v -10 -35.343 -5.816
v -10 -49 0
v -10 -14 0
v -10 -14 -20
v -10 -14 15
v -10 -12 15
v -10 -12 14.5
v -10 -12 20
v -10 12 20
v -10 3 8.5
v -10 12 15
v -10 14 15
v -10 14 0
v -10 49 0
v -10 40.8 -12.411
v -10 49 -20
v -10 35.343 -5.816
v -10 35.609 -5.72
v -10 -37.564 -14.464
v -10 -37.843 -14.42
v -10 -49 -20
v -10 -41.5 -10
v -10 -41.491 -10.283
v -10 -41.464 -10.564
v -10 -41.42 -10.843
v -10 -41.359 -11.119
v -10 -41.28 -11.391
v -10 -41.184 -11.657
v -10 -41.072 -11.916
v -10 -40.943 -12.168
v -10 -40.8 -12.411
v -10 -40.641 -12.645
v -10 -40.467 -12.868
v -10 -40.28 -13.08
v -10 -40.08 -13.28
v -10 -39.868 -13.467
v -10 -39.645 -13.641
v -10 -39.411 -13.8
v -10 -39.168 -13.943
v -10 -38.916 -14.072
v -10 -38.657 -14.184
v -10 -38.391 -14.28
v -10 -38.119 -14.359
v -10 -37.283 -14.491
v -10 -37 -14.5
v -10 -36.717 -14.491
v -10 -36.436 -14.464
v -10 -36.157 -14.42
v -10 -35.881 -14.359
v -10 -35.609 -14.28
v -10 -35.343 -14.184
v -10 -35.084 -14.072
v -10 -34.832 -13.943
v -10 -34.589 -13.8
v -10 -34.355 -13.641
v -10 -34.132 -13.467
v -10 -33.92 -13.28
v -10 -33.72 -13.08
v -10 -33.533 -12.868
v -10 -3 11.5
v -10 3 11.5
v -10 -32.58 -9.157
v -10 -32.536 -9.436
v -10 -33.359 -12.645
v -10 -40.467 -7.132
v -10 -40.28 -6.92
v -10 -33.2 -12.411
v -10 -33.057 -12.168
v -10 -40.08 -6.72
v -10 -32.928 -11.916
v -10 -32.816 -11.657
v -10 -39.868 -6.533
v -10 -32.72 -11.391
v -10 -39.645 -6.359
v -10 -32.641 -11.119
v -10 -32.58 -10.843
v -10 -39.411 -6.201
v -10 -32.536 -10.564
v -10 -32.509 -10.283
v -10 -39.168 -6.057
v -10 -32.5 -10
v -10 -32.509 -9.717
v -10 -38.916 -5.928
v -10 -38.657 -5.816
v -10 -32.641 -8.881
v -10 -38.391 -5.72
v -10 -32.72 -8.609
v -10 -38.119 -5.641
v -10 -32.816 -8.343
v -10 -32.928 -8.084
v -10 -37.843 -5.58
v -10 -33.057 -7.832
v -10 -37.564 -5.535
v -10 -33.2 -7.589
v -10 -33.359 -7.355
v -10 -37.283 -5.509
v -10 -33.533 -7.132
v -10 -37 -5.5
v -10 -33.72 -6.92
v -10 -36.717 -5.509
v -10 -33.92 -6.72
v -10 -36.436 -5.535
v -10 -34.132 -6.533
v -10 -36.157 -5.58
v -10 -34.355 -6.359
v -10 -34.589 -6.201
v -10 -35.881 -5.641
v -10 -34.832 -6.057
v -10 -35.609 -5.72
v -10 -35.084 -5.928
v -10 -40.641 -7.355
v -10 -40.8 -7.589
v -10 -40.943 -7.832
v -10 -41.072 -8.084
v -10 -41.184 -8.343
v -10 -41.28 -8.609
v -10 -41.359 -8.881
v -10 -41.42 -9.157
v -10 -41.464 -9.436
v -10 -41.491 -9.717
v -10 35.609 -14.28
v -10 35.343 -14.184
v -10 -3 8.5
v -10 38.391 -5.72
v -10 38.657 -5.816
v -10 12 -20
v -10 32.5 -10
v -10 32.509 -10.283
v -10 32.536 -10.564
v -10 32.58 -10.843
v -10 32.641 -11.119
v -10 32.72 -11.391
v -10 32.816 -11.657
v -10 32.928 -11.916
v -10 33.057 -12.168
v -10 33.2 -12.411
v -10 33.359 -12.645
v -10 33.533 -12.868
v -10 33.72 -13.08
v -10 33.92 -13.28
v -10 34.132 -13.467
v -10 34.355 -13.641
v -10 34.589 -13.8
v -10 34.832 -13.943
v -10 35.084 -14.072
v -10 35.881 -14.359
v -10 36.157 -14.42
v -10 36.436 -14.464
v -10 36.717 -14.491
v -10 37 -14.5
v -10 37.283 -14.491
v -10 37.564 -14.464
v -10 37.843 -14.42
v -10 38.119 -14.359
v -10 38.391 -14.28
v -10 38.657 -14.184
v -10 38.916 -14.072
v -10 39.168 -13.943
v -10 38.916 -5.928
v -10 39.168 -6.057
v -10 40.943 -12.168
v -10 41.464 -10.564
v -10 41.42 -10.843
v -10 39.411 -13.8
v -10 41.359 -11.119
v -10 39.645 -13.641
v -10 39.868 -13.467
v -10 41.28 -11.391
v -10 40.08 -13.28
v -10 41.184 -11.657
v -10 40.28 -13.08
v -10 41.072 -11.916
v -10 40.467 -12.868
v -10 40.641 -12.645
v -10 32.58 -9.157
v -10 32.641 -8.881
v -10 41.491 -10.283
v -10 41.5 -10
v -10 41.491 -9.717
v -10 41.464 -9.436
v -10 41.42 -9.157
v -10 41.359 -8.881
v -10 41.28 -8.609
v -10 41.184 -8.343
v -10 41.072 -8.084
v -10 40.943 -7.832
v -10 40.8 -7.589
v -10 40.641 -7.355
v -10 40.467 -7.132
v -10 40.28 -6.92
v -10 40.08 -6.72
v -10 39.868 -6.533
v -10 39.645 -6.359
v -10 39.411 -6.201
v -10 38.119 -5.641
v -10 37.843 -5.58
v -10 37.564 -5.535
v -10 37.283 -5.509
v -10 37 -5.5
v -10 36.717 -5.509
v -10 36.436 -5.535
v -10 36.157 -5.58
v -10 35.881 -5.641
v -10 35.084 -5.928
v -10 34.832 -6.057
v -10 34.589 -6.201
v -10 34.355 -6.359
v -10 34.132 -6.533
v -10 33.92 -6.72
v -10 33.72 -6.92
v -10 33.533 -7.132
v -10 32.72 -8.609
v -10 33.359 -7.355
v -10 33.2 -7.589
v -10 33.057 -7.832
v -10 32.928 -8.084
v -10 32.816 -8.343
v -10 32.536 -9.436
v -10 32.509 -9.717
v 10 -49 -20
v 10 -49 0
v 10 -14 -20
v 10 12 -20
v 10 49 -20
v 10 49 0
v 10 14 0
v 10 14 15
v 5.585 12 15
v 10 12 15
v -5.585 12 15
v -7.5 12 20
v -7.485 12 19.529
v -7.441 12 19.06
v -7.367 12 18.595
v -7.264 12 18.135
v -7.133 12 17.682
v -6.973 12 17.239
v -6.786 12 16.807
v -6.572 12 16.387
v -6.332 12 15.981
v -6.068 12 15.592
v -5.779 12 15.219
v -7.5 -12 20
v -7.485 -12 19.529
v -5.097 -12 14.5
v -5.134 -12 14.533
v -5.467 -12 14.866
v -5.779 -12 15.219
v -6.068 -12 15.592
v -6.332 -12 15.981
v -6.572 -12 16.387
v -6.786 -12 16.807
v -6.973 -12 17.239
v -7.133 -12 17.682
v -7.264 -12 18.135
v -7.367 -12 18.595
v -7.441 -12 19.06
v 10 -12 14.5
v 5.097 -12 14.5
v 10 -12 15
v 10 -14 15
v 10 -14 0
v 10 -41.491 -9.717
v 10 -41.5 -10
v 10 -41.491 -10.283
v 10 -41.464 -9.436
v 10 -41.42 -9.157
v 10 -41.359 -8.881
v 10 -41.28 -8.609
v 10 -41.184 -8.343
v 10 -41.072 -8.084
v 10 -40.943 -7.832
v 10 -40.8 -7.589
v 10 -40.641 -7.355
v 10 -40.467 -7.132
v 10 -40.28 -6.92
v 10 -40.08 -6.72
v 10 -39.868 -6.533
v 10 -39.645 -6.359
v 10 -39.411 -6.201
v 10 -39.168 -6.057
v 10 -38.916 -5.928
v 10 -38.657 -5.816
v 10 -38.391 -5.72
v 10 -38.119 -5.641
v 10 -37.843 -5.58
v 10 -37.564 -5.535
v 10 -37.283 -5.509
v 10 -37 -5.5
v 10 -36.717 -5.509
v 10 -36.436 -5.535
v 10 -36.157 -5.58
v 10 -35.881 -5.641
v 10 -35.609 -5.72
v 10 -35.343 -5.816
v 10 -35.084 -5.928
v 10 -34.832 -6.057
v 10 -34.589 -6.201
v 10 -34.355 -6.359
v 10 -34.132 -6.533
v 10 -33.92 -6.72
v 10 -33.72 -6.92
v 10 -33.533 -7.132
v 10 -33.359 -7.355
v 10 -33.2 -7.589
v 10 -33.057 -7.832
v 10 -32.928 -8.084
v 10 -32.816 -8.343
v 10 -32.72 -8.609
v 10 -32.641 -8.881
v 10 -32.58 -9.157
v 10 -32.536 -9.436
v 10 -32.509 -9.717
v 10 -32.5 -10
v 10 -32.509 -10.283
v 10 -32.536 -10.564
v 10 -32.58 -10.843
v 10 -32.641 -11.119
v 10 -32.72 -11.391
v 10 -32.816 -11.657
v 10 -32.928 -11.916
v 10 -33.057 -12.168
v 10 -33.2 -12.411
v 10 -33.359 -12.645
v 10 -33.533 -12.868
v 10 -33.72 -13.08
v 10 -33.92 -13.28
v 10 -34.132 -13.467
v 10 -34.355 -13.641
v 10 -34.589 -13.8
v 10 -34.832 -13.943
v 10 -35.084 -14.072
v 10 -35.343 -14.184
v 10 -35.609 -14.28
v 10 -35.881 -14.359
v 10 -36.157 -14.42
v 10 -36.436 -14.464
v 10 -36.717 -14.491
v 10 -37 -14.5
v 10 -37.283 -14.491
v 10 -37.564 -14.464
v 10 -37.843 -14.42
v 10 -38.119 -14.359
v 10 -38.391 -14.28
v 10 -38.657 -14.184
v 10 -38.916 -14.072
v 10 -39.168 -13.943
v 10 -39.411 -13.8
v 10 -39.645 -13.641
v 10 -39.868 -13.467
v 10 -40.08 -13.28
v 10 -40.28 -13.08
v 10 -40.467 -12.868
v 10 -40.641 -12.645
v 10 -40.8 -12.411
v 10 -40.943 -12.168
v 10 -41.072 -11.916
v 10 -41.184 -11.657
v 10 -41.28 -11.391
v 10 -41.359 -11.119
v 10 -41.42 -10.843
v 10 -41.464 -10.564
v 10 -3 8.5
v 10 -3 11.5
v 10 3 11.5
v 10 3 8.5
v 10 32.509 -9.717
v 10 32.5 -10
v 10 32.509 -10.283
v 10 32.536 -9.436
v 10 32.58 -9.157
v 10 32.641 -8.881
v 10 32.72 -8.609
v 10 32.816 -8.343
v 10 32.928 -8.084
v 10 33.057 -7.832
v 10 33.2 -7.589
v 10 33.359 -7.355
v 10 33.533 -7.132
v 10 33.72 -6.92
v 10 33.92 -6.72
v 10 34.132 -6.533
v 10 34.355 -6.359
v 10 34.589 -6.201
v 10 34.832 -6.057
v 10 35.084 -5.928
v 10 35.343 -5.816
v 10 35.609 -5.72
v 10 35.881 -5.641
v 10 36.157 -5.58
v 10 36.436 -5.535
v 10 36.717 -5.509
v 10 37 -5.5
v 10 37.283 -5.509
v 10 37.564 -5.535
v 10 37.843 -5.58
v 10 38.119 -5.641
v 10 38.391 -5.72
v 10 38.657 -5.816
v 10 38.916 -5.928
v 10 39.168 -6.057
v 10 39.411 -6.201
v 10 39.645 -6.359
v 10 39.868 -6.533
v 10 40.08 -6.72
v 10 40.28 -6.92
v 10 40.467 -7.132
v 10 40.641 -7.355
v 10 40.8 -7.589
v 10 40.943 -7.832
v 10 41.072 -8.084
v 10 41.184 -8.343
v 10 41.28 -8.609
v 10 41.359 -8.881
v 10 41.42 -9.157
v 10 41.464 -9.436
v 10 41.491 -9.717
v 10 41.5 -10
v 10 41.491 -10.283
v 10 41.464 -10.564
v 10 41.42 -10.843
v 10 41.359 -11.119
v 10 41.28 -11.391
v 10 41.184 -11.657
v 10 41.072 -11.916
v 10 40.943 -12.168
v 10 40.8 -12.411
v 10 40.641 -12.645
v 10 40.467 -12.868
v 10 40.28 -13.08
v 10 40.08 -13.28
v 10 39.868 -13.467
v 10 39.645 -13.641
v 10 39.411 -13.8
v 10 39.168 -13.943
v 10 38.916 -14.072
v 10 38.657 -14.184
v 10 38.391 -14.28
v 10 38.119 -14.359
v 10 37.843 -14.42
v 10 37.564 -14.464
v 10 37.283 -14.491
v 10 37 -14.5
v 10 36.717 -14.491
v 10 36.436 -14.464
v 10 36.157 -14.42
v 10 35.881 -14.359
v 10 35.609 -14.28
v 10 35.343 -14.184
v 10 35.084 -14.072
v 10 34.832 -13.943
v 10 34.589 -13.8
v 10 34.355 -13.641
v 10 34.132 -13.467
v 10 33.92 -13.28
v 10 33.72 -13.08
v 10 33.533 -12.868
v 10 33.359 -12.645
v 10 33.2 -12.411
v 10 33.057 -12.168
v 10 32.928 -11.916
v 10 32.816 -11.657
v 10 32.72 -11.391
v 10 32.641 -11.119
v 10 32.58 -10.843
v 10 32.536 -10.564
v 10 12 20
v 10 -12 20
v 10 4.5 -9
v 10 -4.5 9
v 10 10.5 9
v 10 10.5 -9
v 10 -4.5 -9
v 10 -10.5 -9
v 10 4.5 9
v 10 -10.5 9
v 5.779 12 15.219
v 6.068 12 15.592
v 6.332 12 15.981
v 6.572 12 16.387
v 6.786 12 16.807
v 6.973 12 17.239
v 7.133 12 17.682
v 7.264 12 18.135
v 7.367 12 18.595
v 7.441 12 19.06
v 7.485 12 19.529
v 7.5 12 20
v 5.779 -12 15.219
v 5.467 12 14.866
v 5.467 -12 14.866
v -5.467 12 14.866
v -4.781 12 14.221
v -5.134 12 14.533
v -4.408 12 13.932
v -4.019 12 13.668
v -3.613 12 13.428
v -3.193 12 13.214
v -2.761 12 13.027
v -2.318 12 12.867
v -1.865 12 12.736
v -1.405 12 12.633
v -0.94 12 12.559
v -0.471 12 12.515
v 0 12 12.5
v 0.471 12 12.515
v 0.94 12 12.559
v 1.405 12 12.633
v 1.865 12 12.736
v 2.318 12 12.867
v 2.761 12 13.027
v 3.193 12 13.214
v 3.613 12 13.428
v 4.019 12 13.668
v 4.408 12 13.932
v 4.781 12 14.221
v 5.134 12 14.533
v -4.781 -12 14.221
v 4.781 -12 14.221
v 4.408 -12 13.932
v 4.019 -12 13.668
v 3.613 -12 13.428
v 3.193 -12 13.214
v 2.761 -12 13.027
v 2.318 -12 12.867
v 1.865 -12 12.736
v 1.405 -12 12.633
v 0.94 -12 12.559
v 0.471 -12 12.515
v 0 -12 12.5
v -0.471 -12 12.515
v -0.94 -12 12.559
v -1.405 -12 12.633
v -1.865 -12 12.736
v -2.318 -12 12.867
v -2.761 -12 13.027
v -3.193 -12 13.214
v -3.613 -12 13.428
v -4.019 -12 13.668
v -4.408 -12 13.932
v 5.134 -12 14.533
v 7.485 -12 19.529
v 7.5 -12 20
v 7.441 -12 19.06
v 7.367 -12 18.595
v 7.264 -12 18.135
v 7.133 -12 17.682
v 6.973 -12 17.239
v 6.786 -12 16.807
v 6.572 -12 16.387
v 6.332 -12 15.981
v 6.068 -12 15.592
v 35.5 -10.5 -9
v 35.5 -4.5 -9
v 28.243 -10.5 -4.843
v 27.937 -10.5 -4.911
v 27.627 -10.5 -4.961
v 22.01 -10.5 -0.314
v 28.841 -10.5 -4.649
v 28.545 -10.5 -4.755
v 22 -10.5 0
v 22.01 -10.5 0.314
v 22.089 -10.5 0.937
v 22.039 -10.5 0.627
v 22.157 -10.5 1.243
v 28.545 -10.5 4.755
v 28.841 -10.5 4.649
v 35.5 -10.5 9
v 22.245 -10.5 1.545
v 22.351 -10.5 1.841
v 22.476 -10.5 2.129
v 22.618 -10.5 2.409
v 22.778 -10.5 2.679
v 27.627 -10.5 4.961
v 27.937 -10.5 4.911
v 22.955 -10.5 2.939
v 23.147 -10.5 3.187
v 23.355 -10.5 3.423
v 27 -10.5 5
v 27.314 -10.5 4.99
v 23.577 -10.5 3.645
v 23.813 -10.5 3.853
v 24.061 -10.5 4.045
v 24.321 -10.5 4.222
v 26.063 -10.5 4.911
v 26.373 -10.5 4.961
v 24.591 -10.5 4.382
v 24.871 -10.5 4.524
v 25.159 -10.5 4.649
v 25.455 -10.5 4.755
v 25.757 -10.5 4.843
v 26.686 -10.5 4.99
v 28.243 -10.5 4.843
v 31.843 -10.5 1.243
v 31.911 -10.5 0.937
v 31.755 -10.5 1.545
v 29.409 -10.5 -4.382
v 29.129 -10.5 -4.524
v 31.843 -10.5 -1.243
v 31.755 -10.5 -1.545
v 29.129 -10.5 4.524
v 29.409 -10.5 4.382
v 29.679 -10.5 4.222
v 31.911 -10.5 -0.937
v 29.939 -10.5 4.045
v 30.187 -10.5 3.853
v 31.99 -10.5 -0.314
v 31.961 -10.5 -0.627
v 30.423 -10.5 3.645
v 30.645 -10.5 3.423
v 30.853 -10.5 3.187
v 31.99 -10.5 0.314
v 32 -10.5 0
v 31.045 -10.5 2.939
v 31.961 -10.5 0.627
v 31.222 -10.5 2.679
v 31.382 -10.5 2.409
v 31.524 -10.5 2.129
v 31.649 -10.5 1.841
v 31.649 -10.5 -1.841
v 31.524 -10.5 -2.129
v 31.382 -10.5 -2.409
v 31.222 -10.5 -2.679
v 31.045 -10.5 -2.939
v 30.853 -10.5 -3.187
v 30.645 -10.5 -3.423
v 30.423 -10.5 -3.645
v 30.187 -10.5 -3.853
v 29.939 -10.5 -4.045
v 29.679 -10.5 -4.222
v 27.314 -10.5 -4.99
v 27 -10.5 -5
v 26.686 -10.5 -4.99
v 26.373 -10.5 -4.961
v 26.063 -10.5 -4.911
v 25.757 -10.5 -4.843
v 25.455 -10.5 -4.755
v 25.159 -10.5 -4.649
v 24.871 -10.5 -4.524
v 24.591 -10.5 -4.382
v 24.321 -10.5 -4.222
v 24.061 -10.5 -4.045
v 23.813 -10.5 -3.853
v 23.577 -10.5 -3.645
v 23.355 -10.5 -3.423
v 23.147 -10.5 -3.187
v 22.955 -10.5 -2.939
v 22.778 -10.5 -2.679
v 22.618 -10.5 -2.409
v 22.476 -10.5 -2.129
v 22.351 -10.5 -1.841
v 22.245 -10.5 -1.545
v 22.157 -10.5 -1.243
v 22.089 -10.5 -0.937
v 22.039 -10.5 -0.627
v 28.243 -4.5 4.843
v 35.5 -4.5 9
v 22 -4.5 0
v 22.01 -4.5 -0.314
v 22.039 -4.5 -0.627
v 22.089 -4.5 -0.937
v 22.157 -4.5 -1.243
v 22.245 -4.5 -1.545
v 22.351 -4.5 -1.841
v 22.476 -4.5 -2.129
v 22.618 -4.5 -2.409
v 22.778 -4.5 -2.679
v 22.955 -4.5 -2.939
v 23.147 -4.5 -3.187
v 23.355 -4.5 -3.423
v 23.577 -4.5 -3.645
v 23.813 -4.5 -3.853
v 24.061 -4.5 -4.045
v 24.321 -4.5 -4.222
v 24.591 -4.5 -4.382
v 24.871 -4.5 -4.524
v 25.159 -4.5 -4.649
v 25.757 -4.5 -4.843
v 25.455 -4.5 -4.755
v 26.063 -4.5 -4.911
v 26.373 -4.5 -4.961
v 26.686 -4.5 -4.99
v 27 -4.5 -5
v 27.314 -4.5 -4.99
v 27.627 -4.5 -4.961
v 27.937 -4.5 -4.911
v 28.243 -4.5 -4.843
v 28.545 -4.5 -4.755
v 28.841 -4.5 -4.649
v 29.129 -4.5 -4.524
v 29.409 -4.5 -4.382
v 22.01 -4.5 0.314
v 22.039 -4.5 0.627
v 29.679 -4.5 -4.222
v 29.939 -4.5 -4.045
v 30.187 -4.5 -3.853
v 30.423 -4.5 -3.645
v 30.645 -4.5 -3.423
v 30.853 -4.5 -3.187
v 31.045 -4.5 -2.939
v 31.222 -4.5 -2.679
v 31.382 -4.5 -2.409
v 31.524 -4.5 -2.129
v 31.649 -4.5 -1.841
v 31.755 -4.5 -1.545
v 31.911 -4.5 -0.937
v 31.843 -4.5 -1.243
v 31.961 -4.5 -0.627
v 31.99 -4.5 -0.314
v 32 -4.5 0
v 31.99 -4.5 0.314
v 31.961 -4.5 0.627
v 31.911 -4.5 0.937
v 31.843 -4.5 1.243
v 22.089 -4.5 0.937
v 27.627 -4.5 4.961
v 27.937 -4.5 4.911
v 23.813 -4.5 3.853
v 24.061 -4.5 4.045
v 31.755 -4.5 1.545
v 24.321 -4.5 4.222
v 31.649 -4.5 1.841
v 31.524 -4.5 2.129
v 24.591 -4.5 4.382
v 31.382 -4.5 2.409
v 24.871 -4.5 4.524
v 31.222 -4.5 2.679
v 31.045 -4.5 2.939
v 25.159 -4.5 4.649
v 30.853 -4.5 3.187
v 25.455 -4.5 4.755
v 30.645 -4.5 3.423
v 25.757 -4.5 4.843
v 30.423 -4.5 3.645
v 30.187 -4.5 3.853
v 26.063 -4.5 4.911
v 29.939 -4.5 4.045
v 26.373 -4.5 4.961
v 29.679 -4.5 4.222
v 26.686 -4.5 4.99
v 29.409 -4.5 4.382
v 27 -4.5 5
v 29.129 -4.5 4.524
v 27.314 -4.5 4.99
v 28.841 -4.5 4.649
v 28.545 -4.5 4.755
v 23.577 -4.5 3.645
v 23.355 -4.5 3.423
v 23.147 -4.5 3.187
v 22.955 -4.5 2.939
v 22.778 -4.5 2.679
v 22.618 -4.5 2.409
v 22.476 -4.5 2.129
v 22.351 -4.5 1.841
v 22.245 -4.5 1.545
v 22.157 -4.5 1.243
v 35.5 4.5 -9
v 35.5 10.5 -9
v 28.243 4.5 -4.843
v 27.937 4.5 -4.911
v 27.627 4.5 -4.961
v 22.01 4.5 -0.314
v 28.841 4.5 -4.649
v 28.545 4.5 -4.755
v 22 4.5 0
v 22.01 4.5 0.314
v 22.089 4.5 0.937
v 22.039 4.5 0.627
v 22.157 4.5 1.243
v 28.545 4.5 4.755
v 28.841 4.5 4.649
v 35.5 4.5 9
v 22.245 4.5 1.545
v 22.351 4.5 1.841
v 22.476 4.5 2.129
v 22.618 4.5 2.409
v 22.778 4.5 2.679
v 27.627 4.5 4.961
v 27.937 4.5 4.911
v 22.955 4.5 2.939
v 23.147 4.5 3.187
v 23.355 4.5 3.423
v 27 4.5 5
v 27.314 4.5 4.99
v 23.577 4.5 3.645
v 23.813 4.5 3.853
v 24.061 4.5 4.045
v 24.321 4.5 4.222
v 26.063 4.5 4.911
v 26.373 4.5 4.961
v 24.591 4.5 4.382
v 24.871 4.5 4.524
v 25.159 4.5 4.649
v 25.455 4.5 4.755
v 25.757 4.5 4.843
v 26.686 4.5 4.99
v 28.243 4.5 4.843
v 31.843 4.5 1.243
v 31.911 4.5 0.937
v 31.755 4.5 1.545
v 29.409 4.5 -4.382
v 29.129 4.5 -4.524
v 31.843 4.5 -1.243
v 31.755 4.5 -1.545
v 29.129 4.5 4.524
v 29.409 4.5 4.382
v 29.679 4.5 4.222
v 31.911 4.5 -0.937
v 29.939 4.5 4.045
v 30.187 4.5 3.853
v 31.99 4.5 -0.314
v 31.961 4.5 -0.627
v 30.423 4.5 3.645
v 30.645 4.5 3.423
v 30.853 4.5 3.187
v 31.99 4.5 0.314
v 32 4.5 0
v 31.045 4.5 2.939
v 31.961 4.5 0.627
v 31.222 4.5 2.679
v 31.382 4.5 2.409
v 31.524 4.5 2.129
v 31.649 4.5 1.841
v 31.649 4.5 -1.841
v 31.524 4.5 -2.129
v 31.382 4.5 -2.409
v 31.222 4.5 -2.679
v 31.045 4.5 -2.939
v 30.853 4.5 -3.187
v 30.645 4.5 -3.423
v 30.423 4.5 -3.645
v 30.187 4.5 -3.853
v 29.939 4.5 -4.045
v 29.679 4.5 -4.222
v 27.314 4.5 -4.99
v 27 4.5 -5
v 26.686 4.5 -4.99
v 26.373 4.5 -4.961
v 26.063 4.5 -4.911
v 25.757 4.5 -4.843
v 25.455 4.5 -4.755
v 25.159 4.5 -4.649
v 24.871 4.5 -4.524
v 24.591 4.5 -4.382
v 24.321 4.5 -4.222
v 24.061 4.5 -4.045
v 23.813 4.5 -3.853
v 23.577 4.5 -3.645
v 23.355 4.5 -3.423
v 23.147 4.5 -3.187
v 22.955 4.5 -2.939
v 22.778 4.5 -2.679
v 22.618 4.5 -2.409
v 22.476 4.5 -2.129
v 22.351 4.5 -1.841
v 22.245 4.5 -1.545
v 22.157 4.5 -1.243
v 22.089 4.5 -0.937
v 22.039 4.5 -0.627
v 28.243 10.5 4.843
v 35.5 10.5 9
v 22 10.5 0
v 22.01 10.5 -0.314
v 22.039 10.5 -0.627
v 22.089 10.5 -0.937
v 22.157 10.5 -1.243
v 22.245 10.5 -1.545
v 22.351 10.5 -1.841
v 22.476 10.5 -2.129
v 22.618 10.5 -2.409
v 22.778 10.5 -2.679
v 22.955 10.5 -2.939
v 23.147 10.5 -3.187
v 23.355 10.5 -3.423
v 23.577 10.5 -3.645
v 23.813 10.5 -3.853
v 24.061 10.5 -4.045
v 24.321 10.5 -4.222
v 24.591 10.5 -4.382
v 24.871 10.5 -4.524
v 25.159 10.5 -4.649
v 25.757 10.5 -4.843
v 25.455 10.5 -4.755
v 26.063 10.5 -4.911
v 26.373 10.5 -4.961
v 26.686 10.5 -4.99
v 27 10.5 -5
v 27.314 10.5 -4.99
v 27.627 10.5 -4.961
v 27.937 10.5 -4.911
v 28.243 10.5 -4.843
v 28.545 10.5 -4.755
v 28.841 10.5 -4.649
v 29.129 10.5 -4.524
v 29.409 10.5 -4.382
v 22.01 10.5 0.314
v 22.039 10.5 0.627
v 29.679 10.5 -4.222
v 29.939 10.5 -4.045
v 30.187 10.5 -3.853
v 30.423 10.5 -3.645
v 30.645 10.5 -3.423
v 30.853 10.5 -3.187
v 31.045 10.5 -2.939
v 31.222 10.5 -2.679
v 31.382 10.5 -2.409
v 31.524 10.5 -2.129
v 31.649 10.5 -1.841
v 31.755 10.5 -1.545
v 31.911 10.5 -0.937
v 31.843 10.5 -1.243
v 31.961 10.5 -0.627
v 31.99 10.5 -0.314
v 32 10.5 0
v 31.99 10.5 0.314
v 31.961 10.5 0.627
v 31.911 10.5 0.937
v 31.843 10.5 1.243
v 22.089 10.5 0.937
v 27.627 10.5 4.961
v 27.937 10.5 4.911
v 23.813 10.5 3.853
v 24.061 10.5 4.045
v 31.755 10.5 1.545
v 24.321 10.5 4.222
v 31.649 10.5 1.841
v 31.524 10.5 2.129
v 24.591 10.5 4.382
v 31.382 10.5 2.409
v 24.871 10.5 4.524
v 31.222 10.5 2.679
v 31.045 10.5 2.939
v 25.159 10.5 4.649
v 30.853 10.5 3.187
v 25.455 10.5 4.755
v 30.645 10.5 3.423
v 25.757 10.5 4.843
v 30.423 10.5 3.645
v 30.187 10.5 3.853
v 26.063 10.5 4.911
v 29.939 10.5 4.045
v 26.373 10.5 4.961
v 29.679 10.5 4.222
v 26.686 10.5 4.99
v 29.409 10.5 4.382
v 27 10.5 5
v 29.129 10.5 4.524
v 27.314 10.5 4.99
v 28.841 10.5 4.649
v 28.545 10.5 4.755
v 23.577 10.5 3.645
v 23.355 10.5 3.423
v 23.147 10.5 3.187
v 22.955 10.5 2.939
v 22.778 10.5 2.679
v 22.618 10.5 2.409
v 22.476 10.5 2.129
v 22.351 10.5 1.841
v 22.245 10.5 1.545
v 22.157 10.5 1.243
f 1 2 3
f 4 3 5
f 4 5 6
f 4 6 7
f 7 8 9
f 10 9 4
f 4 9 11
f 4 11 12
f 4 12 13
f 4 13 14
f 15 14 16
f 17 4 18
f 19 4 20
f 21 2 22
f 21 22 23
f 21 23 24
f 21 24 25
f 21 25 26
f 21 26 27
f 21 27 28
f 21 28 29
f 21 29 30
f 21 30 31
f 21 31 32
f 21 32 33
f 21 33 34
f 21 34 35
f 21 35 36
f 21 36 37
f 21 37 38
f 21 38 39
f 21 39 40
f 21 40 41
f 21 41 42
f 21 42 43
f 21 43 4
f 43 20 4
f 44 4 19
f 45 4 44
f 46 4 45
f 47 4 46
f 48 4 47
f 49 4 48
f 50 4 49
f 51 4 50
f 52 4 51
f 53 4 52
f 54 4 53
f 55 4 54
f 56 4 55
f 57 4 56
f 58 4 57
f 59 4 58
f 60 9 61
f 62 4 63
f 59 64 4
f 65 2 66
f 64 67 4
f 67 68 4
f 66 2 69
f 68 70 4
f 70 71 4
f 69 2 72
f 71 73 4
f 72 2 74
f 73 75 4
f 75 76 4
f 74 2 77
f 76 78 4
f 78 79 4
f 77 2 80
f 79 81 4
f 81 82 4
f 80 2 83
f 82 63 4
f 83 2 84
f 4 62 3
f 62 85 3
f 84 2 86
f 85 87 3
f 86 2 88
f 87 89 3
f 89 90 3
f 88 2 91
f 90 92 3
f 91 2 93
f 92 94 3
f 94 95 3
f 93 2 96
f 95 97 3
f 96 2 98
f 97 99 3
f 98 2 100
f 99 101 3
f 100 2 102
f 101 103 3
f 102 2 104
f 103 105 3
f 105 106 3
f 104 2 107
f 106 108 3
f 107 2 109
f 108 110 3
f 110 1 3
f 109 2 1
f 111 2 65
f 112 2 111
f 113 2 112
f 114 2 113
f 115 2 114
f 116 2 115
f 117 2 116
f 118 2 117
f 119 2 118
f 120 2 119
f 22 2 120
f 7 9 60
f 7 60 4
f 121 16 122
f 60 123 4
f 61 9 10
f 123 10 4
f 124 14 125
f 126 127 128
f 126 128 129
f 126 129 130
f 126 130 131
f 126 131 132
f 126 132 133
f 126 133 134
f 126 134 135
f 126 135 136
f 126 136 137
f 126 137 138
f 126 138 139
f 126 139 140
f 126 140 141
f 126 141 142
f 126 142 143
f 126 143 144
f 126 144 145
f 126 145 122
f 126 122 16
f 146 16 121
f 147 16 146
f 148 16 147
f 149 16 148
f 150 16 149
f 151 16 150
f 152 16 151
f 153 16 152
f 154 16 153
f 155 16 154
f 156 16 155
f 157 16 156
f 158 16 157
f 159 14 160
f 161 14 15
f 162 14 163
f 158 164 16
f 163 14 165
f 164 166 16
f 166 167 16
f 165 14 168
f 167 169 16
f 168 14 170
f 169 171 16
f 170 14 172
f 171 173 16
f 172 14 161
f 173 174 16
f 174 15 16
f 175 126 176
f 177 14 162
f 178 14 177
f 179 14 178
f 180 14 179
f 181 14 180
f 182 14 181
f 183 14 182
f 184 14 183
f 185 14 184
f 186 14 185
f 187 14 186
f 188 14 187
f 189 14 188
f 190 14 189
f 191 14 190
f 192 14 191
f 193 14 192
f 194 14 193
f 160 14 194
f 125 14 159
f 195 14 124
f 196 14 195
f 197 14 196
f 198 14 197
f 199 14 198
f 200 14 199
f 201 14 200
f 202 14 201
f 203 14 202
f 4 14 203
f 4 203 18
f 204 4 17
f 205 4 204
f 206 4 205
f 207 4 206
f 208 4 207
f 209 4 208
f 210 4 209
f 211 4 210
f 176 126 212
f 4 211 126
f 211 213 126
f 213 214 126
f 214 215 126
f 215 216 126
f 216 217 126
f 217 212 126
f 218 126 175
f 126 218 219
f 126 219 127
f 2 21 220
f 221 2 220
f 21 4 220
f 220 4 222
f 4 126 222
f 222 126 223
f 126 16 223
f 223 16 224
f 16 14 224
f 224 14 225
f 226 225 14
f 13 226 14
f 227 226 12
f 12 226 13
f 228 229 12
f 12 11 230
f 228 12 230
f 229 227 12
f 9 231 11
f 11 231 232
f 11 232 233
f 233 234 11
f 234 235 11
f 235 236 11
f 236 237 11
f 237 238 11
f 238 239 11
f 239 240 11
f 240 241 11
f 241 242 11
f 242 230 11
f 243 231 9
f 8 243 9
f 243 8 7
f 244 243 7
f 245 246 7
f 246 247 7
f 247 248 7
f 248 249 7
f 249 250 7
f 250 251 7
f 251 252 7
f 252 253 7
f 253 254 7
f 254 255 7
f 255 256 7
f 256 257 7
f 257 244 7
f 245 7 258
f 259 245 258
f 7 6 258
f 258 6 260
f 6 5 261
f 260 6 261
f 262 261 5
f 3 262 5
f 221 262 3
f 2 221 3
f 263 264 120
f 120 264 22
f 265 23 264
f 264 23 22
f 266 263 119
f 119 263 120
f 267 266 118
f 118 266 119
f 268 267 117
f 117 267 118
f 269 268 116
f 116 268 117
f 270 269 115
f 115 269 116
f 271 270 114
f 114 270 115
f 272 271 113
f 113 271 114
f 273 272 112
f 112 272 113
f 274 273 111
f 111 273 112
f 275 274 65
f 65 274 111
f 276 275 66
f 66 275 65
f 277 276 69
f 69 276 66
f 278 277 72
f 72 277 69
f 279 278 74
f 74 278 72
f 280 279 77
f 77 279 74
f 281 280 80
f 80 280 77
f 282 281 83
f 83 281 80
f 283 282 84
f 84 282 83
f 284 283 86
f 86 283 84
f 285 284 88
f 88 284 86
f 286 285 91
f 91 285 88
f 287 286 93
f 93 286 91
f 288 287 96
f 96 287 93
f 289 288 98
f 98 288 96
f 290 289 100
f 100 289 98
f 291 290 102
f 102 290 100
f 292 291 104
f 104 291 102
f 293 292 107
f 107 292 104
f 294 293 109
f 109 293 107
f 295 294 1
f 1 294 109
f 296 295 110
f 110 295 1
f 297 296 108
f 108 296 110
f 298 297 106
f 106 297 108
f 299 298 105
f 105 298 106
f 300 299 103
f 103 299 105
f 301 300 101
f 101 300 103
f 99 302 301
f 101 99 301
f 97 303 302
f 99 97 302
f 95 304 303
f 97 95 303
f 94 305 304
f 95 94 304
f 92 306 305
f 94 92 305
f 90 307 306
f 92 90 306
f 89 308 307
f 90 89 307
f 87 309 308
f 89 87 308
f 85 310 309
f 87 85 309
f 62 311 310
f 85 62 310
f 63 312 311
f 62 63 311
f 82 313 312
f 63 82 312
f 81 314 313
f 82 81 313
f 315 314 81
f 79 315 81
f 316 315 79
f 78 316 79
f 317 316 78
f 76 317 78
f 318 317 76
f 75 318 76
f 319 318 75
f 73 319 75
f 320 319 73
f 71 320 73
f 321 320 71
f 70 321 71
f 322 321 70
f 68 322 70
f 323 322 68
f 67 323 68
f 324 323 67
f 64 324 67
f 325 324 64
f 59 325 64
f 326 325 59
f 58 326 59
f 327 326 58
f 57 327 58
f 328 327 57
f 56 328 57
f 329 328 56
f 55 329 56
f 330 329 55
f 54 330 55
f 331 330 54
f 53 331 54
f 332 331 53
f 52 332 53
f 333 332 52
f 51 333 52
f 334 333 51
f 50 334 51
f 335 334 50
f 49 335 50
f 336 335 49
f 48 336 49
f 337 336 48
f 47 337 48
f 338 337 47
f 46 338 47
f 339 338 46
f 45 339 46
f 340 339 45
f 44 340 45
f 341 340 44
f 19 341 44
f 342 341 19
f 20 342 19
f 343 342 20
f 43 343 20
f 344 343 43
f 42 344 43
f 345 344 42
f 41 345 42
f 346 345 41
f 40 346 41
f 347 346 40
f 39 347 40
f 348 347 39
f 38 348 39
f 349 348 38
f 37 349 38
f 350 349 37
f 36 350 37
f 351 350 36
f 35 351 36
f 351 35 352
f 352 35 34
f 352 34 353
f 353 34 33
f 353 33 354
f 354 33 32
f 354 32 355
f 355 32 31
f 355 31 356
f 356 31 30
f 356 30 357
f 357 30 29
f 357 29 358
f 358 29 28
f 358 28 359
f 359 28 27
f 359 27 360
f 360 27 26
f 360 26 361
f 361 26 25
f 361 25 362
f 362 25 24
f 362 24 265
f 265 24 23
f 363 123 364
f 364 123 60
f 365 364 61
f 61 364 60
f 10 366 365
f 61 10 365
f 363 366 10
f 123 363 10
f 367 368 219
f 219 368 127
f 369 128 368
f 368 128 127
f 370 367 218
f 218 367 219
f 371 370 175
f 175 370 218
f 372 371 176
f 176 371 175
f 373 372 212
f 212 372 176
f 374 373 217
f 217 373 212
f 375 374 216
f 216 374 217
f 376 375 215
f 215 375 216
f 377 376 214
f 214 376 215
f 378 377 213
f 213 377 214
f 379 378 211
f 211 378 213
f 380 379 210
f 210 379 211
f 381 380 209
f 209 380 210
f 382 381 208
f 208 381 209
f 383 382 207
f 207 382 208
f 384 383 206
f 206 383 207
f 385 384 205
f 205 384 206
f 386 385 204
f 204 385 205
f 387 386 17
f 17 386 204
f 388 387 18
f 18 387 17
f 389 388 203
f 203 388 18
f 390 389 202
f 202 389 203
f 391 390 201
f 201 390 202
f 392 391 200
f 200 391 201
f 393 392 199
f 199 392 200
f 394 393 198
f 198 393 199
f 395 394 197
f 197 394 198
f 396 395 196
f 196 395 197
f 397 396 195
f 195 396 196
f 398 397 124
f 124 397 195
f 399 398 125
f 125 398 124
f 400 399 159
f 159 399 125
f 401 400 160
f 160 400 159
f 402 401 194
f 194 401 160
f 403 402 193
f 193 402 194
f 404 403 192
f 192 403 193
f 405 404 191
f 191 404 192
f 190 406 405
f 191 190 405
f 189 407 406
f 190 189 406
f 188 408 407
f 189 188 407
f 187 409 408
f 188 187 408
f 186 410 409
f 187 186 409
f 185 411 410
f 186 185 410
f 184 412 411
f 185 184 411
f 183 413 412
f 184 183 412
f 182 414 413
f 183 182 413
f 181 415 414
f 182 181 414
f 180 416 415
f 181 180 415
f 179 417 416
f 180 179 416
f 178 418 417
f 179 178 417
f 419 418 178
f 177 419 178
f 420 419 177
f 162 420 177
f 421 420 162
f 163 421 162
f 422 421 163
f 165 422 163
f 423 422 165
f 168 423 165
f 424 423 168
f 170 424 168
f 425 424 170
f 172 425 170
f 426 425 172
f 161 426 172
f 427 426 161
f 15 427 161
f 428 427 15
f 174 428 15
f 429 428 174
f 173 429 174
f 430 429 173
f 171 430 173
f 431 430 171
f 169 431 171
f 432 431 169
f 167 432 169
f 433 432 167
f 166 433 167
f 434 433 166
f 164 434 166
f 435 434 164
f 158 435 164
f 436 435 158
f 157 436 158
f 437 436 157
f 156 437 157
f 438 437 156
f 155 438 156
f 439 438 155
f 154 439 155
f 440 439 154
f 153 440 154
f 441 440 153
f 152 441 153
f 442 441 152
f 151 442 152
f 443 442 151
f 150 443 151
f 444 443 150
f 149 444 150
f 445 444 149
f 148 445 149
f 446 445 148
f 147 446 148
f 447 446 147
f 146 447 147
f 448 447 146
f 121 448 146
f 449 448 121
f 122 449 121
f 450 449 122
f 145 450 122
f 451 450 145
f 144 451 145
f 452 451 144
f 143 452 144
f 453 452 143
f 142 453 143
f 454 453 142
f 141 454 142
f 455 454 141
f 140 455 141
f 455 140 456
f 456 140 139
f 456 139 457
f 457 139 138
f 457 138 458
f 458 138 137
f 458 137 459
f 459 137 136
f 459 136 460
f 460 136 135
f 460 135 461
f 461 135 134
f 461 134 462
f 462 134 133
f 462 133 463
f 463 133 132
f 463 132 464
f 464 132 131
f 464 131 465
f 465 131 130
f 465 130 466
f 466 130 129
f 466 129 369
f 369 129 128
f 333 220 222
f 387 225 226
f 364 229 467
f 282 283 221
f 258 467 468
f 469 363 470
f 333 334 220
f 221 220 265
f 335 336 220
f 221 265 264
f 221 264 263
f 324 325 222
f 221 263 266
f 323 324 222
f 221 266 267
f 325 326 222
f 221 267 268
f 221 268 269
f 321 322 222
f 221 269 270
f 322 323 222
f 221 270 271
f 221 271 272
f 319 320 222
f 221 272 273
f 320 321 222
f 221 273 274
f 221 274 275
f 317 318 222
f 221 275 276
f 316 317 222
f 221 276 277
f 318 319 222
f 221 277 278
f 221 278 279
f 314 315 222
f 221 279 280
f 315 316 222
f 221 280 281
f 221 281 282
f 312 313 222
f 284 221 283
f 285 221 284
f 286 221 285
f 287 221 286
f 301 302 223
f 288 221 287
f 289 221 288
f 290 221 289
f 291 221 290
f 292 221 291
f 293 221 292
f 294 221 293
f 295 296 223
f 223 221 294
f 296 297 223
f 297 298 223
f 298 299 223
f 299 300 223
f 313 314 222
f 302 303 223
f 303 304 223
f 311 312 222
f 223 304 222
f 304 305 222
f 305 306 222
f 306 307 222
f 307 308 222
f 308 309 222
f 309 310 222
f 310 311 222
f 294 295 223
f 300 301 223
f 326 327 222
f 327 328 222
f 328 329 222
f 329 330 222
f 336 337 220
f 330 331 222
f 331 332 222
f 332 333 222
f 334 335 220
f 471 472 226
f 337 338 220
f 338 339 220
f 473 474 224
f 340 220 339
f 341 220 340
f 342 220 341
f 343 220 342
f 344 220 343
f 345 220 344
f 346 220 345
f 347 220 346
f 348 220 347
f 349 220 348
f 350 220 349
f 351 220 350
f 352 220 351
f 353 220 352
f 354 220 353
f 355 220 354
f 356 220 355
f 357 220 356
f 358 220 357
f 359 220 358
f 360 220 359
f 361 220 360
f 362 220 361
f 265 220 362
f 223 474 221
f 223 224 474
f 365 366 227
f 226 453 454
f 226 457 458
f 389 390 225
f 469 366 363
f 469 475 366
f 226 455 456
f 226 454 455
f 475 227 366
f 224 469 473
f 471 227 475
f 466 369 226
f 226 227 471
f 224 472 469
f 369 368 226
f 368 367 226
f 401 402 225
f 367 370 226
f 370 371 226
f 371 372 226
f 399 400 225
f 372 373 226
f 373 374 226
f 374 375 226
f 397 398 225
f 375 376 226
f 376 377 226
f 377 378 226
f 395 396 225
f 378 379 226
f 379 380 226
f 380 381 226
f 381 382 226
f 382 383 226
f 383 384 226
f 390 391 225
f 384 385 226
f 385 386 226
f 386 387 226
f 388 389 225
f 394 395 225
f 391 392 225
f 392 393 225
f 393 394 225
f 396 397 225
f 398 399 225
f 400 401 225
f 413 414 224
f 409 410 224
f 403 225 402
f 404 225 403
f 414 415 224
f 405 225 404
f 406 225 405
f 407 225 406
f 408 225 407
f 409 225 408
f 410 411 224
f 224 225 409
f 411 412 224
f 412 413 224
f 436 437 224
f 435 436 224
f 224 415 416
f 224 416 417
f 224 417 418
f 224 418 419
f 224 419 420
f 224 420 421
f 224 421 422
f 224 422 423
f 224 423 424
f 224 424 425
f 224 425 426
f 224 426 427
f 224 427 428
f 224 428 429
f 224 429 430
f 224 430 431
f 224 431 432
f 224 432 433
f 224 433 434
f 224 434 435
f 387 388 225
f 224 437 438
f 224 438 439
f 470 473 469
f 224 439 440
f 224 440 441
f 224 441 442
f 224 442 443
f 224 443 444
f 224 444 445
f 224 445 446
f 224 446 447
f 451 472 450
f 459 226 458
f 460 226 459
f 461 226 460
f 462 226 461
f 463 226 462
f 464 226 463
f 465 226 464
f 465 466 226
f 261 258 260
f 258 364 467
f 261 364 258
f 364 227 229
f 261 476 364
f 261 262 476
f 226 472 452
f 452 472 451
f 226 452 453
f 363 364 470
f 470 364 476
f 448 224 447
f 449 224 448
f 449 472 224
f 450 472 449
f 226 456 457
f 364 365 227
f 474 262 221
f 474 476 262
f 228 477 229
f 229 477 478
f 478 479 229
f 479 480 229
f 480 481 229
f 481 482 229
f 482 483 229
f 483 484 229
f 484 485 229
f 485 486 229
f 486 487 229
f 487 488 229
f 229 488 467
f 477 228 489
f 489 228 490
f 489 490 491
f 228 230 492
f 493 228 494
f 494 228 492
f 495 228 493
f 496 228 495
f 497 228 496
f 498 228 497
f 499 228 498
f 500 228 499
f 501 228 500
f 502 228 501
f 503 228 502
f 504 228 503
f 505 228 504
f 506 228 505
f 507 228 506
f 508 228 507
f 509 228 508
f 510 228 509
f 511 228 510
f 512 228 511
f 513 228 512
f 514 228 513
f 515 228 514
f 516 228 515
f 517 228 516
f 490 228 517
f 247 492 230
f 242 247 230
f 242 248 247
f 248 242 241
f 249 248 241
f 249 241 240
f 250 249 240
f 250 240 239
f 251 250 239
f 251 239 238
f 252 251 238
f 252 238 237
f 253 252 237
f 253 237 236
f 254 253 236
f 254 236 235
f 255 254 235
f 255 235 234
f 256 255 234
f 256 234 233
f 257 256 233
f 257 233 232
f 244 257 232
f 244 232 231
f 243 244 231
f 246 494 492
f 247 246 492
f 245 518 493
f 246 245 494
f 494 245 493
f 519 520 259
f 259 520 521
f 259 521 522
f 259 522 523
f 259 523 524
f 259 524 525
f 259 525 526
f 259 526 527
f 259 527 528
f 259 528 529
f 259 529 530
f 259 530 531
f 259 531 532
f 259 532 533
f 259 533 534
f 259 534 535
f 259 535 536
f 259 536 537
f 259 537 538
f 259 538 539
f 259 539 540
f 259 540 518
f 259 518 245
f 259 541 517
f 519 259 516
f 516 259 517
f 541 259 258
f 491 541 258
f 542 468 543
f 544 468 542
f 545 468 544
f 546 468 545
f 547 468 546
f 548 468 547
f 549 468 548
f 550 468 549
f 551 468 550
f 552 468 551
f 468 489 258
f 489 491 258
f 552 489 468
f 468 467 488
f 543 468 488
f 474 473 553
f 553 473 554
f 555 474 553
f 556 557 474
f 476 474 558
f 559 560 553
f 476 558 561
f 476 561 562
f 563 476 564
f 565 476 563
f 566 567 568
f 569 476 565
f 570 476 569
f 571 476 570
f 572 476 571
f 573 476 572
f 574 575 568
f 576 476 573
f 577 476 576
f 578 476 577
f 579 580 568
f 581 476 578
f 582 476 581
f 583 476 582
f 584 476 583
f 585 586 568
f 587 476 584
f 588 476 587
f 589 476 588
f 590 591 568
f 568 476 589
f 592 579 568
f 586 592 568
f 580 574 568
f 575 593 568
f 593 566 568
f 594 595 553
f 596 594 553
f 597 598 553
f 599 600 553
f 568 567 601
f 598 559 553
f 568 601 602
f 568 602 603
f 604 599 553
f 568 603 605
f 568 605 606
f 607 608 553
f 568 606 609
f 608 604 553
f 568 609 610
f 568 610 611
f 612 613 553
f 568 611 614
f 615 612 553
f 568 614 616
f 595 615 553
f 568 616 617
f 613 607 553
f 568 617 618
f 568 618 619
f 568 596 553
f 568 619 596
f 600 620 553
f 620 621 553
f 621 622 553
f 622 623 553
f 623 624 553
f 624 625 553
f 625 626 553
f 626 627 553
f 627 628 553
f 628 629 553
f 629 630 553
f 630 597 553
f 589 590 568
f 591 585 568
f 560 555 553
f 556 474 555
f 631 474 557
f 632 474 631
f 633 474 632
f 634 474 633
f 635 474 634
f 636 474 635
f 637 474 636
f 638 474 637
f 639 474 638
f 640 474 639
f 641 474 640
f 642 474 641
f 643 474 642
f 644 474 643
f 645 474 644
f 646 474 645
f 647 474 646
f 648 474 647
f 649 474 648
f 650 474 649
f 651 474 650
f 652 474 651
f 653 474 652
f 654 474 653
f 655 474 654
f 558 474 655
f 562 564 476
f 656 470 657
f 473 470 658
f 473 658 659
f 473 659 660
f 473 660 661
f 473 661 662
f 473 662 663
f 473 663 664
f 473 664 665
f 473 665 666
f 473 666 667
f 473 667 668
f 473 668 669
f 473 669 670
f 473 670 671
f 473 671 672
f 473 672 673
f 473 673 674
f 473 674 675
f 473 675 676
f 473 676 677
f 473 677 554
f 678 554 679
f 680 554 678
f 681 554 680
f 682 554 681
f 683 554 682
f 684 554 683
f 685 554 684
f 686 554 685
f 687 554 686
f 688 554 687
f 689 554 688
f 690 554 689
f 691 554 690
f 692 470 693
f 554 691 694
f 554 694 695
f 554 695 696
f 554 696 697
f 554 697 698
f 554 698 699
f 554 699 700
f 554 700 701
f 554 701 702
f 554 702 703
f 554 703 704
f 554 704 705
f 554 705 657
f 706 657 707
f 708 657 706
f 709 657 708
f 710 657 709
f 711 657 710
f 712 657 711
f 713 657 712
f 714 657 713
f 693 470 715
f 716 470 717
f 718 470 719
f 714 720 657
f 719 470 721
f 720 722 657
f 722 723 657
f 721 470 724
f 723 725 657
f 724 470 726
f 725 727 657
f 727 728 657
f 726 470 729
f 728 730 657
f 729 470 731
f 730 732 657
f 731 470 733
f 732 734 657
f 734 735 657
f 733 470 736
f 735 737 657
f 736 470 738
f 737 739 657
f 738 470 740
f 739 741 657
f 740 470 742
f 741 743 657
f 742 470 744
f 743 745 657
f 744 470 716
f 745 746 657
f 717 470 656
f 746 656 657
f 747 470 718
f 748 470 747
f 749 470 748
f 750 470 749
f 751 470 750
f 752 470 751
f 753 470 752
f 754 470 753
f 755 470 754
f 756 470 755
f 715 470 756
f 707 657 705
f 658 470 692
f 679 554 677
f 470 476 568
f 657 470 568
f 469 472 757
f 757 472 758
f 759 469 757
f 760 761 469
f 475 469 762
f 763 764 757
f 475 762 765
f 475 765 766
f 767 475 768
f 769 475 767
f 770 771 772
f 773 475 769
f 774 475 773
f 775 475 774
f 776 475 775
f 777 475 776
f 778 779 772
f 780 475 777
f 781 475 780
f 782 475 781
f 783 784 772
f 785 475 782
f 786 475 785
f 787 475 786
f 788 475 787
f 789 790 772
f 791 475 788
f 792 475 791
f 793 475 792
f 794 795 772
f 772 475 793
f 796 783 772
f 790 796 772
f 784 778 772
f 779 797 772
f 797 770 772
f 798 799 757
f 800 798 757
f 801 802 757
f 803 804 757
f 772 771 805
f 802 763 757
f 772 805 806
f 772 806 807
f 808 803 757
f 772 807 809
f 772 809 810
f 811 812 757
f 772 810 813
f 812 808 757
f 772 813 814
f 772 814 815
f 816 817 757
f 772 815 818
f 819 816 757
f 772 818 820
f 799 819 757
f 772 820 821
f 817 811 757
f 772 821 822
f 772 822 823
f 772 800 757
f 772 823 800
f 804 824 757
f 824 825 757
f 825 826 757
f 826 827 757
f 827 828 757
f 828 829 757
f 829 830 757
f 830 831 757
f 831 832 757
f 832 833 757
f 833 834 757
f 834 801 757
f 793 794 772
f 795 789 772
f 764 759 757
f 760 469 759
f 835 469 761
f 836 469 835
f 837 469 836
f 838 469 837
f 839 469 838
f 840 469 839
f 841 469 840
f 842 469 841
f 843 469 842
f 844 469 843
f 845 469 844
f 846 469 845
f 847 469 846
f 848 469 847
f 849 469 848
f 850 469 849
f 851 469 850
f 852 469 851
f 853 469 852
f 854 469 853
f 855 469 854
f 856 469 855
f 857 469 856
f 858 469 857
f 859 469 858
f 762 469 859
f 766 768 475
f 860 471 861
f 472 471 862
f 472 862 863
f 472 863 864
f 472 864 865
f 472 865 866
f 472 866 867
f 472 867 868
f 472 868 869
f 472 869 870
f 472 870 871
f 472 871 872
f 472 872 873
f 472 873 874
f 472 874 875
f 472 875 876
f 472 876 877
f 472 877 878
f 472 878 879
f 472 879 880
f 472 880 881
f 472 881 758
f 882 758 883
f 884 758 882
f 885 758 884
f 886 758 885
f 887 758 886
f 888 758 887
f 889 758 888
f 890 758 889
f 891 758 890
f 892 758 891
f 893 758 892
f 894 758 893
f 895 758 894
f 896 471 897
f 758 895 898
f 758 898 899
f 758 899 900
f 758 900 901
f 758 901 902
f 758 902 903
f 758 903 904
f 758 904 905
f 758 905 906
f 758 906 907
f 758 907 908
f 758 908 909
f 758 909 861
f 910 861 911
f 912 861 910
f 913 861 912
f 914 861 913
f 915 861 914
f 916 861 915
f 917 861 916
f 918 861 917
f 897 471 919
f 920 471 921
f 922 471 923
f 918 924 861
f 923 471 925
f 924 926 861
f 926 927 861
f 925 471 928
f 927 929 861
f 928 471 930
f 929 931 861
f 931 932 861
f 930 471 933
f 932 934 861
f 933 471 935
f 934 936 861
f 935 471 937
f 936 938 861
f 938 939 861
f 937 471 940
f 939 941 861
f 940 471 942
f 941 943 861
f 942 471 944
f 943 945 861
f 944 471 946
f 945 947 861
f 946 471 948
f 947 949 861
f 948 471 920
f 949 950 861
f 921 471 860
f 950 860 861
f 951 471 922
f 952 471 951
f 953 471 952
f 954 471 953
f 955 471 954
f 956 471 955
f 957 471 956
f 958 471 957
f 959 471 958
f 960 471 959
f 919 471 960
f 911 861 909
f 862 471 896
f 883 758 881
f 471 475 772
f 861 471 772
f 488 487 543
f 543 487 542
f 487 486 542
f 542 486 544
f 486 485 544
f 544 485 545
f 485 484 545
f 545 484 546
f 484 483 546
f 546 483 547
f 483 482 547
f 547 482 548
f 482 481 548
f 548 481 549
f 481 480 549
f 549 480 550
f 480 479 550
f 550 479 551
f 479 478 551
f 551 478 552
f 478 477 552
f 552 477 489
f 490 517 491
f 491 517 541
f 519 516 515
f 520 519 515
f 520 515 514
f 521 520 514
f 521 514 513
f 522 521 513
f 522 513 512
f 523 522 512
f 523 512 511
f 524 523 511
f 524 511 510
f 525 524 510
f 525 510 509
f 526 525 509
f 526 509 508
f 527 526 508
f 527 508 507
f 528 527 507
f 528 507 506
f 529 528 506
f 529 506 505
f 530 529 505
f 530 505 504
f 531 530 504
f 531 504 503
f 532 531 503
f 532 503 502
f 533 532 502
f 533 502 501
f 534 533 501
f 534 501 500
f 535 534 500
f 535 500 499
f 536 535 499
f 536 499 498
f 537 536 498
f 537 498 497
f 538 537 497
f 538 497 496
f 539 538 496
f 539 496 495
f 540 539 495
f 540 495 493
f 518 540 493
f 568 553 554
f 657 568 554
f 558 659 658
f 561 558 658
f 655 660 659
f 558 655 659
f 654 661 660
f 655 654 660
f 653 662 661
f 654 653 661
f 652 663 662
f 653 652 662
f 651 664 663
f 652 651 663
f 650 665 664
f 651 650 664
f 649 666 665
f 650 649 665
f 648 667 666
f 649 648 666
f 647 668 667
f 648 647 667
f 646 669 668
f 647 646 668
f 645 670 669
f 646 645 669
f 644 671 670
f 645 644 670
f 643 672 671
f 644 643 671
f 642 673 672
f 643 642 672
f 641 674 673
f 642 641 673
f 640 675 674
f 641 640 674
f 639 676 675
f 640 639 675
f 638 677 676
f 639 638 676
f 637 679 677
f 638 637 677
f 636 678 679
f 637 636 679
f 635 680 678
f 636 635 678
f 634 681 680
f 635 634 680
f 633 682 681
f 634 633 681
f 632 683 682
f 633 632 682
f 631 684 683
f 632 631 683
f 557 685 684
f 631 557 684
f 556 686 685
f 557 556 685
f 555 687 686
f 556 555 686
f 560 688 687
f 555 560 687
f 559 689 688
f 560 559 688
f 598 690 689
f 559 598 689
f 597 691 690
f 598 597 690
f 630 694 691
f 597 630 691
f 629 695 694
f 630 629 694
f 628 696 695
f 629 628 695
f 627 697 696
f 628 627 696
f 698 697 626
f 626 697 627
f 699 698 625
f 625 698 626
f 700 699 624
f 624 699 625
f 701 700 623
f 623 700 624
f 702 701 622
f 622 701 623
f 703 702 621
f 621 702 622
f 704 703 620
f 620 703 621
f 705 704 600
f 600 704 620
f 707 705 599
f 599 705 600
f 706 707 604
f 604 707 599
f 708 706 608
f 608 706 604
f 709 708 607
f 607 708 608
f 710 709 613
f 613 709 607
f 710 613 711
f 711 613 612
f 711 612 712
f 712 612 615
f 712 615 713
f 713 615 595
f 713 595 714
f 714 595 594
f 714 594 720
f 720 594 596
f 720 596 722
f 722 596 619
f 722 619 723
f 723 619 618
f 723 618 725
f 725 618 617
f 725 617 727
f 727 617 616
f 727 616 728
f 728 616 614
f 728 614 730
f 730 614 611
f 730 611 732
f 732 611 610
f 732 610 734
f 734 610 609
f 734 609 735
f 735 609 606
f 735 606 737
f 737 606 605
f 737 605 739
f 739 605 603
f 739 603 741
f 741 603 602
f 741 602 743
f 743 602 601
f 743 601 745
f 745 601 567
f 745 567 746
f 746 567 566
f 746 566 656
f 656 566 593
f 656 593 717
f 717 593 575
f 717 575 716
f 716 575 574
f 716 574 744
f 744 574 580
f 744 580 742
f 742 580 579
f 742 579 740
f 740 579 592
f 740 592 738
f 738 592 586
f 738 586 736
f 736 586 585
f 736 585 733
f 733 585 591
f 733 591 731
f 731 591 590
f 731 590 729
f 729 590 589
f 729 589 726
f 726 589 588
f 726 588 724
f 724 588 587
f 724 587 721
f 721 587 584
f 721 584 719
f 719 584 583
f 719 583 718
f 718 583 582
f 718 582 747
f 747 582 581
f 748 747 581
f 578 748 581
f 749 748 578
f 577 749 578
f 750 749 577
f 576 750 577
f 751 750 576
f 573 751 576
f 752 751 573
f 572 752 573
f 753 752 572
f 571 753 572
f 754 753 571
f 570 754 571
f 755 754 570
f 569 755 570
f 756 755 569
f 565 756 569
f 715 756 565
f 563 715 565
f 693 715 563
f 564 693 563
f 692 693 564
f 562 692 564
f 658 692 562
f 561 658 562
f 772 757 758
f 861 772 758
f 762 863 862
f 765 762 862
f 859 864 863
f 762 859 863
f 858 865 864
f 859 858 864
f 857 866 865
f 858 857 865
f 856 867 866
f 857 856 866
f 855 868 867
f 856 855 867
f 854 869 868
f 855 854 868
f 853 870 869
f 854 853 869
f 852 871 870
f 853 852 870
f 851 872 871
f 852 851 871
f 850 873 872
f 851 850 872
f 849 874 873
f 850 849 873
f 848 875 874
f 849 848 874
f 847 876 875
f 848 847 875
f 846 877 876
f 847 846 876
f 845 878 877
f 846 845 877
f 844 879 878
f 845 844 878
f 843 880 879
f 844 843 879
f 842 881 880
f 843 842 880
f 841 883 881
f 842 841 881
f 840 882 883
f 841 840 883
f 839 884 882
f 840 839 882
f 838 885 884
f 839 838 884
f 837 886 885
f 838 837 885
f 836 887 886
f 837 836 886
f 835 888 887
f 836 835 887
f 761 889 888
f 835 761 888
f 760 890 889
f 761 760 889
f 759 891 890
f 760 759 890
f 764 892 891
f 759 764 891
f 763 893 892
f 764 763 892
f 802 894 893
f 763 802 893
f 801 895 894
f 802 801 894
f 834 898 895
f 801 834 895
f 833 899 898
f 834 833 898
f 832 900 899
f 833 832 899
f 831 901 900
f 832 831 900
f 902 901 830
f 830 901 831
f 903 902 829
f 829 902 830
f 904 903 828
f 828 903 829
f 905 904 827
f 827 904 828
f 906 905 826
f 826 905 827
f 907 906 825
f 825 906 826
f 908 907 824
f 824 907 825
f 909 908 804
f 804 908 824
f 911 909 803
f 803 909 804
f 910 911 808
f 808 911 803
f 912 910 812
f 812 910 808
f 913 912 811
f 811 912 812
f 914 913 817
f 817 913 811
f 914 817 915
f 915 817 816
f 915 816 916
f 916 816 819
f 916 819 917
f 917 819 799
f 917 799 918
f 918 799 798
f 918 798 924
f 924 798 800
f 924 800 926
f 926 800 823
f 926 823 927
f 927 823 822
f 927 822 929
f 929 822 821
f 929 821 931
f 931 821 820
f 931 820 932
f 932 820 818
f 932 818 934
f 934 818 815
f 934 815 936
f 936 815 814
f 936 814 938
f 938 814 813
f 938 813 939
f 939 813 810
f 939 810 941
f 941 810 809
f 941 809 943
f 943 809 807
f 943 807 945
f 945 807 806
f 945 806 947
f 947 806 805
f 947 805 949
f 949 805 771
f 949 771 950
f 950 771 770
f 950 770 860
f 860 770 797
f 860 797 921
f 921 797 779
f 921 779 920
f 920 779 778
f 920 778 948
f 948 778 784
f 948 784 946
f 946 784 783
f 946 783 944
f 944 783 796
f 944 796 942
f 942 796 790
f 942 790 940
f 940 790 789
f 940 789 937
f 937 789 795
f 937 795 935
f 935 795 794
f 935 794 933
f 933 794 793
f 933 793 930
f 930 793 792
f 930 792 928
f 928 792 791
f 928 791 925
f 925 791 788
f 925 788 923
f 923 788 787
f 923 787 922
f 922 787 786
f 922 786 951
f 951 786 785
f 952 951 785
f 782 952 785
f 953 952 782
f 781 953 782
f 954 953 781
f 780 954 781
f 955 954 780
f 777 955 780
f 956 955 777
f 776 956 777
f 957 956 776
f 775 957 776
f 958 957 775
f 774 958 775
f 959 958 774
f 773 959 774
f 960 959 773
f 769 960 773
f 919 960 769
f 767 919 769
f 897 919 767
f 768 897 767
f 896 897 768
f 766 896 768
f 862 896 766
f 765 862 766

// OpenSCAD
// file: lib.scad
module prism(l, w, h) {
translate([0, l, 0]) rotate( a= [90, 0, 0])
linear_extrude(height = l) polygon(points = [
[0, 0],
[w, 0],
[0, h]
], paths=[[0,1,2,0]]);
}

module bearing_holder(l, h, r1, r2, holder_depth, holder_thick=2) {
	union(){
		difference(){
			union(){
				translate([-r1,0,-l/2]) cube([r1*2,h,l]);
				cylinder (h = l, r=r1, center = true, $fn=100);
			}
			translate([0,-r1/2,0]) cube([r1*2+1, r1, l+1], center=true);
			translate([0,r1,0]) cube([r1*2+1, 3, 6], center=true);
			cylinder (h = l+1, r=r2, center = true, $fn=100);
		}
		translate([0,(h+r2-holder_thick)/2,l/2+holder_thick/2]) cube([r1*2,h-r2+holder_thick,holder_thick], center=true);
		translate([0,(h+r2-holder_thick)/2,-(l/2+holder_thick/2)]) cube([r1*2,h-r2+holder_thick,holder_thick], center=true);
	}
}

module single_bearing_frame(r1, r2, h, l, d, holder_depth, holder_thick=2, bar_offset=false){
	difference(){
		union(){
			translate([0,0,h/2]) rotate([-90,0,0]) bearing_holder(l, h, r1, r2, holder_depth);
			translate([0,l/2+(d+l)/4,-r2/2+holder_depth/2]) cube([r1*2,(d+l)/2,h-r2+holder_depth], center=true);
			translate([0,-(l/2+(d+l)/4),-r2/2+holder_depth/2]) cube([r1*2,(d+l)/2,h-r2+holder_depth], center=true);
		}
		if (bar_offset != false){
			translate([0,-(d+l)/2,-h/2+bar_offset]) rotate([0,90,0]) cylinder(r=4.5, h=r1*2.5,center=true,$fn=100);
			translate([0,(d+l)/2,-h/2+bar_offset]) rotate([0,90,0]) cylinder(r=4.5, h=r1*2.5,center=true,$fn=100);		
		}
		translate([0,-(l/2+(d+l)/4+holder_thick/2+1),h/4]) cube([r1*2+1,(d+l)/2-holder_thick+2,h/2], center=true);
		translate([0,(l/2+(d+l)/4+holder_thick/2+1),h/4]) cube([r1*2+1,(d+l)/2-holder_thick+2,h/2], center=true);
	}
}

module double_bearing_frame(r1, r2, h, l, d, holder_depth, holder_thick=2, bar_offset=false){
	difference(){
		union(){
			translate([0,-((d+l)/2-holder_thick),h/2]) rotate([-90,0,0]) bearing_holder(l, h, r1, r2, holder_depth);
			translate([0,(d+l)/2-holder_thick,h/2]) rotate([-90,0,0]) bearing_holder(l, h, r1, r2, holder_depth);

			translate([0,0,-r2/2+holder_depth/2]) cube([r1*2,d-holder_thick*2,h-r2+holder_depth], center=true);

			translate([0,d/2+l-holder_thick/2,-r2/2+holder_depth/2]) cube([r1*2,holder_thick,h-r2+holder_depth], center=true);
			translate([0,-d/2-l+holder_thick/2,-r2/2+holder_depth/2]) cube([r1*2,holder_thick,h-r2+holder_depth], center=true);
		}
		if (bar_offset != false){
			translate([0,-(d+l)/2,-h/2+bar_offset]) rotate([0,90,0]) cylinder(r=4.5, h=r1*2.5,center=true,$fn=100);
			translate([0,(d+l)/2,-h/2+bar_offset]) rotate([0,90,0]) cylinder(r=4.5, h=r1*2.5,center=true,$fn=100);	
		}
		translate([0,0,h/4]) cube([r1*2+1,d-4*holder_thick,h/2], center=true);
	}
}

module motor_holder(){
	rotate([90,0,0]) difference(){
		translate([0,-1.9,0]) cube([50,46.2,10],center=true);
		translate([0,1,3]) cube([42.4,44.4,7],center=true);
		for(pos = [[-15.5,15.5,0],[15.5,15.5,0],[15.5,-15.5,0],[-15.5,-15.5,0]]){
			translate(pos) cylinder(r=1.7,h=11,center=true,$fn=100);
		}
		
		translate([0,21,-3]) cube([23.4,42.4,7],center=true);
		cylinder(r=11.5,h=20,center=true,$fn=100);
	}
}

module feame_connector(){
	translate([0,0,12.5]) difference(){
		cube([48,48,40], center=true);
		translate([0,0,6]) cube([41.1,41.1,40], center=true);
	}
	translate([0,0,5]) difference(){
		union(){
			translate([0,34,0]) cube([30,20,25], center=true);
		}
		translate([0,33,0]) rotate([0,90,0]) cylinder(r=4.5,h=31,center=true,$fn=100);
	}
}

module nut_holder(r1=5, r2=4, h=6){
	difference(){
		rotate([0,90,0]) cylinder(h=h,r=5,$fn=6,center=true);
		rotate([0,90,0]) cylinder(h=h+1,r=4,$fn=6,center=true);
	}
}

/*
r1 = 10;
r2 = 7.5;
h = 40;
l = 24;
d = 50;
holder_depth = 2.5;
//bearing_holder(l, h, r1, r2, holder_depth);
//single_bearing_frame(r1, r2, h, l, d, holder_depth, bar_offset=10);
//double_bearing_frame(r1, r2, h, l, d, holder_depth, bar_offset=10);
//motor_holder();
feame_connector();
/*
*/
// main file
include <lib.scad>;

r1 = 10;
r2 = 7.5;
h = 40;
l = 24;
d = 50;
holder_depth = 2.5;
holder_thick = 2;
drill_offsets = [[6,9,0],[-6,9,0],[6,-9,0],[-6,-9,0]];
drill_pos = [-24,0,0];
difference(){
	union(){
		single_bearing_frame(r1, r2, h, l, d, holder_depth, bar_offset=10);
		translate([18.5,7.5,0]) cube([34, 6, 18], center=true);
		translate([18.5,-7.5,0]) cube([34, 6, 18], center=true);
//		translate([-13-r1,0,5]) cube([26, 28, 6], center=true);
	}
	translate([27,0,0]) rotate([90,0,0]) cylinder(h=30, r=5, center=true, $fn=100);
//	translate(drill_pos) for(pos = drill_offsets){
//		translate(pos) cylinder(h=30, r=2.5, center=true, $fn=100);
//	}
}
